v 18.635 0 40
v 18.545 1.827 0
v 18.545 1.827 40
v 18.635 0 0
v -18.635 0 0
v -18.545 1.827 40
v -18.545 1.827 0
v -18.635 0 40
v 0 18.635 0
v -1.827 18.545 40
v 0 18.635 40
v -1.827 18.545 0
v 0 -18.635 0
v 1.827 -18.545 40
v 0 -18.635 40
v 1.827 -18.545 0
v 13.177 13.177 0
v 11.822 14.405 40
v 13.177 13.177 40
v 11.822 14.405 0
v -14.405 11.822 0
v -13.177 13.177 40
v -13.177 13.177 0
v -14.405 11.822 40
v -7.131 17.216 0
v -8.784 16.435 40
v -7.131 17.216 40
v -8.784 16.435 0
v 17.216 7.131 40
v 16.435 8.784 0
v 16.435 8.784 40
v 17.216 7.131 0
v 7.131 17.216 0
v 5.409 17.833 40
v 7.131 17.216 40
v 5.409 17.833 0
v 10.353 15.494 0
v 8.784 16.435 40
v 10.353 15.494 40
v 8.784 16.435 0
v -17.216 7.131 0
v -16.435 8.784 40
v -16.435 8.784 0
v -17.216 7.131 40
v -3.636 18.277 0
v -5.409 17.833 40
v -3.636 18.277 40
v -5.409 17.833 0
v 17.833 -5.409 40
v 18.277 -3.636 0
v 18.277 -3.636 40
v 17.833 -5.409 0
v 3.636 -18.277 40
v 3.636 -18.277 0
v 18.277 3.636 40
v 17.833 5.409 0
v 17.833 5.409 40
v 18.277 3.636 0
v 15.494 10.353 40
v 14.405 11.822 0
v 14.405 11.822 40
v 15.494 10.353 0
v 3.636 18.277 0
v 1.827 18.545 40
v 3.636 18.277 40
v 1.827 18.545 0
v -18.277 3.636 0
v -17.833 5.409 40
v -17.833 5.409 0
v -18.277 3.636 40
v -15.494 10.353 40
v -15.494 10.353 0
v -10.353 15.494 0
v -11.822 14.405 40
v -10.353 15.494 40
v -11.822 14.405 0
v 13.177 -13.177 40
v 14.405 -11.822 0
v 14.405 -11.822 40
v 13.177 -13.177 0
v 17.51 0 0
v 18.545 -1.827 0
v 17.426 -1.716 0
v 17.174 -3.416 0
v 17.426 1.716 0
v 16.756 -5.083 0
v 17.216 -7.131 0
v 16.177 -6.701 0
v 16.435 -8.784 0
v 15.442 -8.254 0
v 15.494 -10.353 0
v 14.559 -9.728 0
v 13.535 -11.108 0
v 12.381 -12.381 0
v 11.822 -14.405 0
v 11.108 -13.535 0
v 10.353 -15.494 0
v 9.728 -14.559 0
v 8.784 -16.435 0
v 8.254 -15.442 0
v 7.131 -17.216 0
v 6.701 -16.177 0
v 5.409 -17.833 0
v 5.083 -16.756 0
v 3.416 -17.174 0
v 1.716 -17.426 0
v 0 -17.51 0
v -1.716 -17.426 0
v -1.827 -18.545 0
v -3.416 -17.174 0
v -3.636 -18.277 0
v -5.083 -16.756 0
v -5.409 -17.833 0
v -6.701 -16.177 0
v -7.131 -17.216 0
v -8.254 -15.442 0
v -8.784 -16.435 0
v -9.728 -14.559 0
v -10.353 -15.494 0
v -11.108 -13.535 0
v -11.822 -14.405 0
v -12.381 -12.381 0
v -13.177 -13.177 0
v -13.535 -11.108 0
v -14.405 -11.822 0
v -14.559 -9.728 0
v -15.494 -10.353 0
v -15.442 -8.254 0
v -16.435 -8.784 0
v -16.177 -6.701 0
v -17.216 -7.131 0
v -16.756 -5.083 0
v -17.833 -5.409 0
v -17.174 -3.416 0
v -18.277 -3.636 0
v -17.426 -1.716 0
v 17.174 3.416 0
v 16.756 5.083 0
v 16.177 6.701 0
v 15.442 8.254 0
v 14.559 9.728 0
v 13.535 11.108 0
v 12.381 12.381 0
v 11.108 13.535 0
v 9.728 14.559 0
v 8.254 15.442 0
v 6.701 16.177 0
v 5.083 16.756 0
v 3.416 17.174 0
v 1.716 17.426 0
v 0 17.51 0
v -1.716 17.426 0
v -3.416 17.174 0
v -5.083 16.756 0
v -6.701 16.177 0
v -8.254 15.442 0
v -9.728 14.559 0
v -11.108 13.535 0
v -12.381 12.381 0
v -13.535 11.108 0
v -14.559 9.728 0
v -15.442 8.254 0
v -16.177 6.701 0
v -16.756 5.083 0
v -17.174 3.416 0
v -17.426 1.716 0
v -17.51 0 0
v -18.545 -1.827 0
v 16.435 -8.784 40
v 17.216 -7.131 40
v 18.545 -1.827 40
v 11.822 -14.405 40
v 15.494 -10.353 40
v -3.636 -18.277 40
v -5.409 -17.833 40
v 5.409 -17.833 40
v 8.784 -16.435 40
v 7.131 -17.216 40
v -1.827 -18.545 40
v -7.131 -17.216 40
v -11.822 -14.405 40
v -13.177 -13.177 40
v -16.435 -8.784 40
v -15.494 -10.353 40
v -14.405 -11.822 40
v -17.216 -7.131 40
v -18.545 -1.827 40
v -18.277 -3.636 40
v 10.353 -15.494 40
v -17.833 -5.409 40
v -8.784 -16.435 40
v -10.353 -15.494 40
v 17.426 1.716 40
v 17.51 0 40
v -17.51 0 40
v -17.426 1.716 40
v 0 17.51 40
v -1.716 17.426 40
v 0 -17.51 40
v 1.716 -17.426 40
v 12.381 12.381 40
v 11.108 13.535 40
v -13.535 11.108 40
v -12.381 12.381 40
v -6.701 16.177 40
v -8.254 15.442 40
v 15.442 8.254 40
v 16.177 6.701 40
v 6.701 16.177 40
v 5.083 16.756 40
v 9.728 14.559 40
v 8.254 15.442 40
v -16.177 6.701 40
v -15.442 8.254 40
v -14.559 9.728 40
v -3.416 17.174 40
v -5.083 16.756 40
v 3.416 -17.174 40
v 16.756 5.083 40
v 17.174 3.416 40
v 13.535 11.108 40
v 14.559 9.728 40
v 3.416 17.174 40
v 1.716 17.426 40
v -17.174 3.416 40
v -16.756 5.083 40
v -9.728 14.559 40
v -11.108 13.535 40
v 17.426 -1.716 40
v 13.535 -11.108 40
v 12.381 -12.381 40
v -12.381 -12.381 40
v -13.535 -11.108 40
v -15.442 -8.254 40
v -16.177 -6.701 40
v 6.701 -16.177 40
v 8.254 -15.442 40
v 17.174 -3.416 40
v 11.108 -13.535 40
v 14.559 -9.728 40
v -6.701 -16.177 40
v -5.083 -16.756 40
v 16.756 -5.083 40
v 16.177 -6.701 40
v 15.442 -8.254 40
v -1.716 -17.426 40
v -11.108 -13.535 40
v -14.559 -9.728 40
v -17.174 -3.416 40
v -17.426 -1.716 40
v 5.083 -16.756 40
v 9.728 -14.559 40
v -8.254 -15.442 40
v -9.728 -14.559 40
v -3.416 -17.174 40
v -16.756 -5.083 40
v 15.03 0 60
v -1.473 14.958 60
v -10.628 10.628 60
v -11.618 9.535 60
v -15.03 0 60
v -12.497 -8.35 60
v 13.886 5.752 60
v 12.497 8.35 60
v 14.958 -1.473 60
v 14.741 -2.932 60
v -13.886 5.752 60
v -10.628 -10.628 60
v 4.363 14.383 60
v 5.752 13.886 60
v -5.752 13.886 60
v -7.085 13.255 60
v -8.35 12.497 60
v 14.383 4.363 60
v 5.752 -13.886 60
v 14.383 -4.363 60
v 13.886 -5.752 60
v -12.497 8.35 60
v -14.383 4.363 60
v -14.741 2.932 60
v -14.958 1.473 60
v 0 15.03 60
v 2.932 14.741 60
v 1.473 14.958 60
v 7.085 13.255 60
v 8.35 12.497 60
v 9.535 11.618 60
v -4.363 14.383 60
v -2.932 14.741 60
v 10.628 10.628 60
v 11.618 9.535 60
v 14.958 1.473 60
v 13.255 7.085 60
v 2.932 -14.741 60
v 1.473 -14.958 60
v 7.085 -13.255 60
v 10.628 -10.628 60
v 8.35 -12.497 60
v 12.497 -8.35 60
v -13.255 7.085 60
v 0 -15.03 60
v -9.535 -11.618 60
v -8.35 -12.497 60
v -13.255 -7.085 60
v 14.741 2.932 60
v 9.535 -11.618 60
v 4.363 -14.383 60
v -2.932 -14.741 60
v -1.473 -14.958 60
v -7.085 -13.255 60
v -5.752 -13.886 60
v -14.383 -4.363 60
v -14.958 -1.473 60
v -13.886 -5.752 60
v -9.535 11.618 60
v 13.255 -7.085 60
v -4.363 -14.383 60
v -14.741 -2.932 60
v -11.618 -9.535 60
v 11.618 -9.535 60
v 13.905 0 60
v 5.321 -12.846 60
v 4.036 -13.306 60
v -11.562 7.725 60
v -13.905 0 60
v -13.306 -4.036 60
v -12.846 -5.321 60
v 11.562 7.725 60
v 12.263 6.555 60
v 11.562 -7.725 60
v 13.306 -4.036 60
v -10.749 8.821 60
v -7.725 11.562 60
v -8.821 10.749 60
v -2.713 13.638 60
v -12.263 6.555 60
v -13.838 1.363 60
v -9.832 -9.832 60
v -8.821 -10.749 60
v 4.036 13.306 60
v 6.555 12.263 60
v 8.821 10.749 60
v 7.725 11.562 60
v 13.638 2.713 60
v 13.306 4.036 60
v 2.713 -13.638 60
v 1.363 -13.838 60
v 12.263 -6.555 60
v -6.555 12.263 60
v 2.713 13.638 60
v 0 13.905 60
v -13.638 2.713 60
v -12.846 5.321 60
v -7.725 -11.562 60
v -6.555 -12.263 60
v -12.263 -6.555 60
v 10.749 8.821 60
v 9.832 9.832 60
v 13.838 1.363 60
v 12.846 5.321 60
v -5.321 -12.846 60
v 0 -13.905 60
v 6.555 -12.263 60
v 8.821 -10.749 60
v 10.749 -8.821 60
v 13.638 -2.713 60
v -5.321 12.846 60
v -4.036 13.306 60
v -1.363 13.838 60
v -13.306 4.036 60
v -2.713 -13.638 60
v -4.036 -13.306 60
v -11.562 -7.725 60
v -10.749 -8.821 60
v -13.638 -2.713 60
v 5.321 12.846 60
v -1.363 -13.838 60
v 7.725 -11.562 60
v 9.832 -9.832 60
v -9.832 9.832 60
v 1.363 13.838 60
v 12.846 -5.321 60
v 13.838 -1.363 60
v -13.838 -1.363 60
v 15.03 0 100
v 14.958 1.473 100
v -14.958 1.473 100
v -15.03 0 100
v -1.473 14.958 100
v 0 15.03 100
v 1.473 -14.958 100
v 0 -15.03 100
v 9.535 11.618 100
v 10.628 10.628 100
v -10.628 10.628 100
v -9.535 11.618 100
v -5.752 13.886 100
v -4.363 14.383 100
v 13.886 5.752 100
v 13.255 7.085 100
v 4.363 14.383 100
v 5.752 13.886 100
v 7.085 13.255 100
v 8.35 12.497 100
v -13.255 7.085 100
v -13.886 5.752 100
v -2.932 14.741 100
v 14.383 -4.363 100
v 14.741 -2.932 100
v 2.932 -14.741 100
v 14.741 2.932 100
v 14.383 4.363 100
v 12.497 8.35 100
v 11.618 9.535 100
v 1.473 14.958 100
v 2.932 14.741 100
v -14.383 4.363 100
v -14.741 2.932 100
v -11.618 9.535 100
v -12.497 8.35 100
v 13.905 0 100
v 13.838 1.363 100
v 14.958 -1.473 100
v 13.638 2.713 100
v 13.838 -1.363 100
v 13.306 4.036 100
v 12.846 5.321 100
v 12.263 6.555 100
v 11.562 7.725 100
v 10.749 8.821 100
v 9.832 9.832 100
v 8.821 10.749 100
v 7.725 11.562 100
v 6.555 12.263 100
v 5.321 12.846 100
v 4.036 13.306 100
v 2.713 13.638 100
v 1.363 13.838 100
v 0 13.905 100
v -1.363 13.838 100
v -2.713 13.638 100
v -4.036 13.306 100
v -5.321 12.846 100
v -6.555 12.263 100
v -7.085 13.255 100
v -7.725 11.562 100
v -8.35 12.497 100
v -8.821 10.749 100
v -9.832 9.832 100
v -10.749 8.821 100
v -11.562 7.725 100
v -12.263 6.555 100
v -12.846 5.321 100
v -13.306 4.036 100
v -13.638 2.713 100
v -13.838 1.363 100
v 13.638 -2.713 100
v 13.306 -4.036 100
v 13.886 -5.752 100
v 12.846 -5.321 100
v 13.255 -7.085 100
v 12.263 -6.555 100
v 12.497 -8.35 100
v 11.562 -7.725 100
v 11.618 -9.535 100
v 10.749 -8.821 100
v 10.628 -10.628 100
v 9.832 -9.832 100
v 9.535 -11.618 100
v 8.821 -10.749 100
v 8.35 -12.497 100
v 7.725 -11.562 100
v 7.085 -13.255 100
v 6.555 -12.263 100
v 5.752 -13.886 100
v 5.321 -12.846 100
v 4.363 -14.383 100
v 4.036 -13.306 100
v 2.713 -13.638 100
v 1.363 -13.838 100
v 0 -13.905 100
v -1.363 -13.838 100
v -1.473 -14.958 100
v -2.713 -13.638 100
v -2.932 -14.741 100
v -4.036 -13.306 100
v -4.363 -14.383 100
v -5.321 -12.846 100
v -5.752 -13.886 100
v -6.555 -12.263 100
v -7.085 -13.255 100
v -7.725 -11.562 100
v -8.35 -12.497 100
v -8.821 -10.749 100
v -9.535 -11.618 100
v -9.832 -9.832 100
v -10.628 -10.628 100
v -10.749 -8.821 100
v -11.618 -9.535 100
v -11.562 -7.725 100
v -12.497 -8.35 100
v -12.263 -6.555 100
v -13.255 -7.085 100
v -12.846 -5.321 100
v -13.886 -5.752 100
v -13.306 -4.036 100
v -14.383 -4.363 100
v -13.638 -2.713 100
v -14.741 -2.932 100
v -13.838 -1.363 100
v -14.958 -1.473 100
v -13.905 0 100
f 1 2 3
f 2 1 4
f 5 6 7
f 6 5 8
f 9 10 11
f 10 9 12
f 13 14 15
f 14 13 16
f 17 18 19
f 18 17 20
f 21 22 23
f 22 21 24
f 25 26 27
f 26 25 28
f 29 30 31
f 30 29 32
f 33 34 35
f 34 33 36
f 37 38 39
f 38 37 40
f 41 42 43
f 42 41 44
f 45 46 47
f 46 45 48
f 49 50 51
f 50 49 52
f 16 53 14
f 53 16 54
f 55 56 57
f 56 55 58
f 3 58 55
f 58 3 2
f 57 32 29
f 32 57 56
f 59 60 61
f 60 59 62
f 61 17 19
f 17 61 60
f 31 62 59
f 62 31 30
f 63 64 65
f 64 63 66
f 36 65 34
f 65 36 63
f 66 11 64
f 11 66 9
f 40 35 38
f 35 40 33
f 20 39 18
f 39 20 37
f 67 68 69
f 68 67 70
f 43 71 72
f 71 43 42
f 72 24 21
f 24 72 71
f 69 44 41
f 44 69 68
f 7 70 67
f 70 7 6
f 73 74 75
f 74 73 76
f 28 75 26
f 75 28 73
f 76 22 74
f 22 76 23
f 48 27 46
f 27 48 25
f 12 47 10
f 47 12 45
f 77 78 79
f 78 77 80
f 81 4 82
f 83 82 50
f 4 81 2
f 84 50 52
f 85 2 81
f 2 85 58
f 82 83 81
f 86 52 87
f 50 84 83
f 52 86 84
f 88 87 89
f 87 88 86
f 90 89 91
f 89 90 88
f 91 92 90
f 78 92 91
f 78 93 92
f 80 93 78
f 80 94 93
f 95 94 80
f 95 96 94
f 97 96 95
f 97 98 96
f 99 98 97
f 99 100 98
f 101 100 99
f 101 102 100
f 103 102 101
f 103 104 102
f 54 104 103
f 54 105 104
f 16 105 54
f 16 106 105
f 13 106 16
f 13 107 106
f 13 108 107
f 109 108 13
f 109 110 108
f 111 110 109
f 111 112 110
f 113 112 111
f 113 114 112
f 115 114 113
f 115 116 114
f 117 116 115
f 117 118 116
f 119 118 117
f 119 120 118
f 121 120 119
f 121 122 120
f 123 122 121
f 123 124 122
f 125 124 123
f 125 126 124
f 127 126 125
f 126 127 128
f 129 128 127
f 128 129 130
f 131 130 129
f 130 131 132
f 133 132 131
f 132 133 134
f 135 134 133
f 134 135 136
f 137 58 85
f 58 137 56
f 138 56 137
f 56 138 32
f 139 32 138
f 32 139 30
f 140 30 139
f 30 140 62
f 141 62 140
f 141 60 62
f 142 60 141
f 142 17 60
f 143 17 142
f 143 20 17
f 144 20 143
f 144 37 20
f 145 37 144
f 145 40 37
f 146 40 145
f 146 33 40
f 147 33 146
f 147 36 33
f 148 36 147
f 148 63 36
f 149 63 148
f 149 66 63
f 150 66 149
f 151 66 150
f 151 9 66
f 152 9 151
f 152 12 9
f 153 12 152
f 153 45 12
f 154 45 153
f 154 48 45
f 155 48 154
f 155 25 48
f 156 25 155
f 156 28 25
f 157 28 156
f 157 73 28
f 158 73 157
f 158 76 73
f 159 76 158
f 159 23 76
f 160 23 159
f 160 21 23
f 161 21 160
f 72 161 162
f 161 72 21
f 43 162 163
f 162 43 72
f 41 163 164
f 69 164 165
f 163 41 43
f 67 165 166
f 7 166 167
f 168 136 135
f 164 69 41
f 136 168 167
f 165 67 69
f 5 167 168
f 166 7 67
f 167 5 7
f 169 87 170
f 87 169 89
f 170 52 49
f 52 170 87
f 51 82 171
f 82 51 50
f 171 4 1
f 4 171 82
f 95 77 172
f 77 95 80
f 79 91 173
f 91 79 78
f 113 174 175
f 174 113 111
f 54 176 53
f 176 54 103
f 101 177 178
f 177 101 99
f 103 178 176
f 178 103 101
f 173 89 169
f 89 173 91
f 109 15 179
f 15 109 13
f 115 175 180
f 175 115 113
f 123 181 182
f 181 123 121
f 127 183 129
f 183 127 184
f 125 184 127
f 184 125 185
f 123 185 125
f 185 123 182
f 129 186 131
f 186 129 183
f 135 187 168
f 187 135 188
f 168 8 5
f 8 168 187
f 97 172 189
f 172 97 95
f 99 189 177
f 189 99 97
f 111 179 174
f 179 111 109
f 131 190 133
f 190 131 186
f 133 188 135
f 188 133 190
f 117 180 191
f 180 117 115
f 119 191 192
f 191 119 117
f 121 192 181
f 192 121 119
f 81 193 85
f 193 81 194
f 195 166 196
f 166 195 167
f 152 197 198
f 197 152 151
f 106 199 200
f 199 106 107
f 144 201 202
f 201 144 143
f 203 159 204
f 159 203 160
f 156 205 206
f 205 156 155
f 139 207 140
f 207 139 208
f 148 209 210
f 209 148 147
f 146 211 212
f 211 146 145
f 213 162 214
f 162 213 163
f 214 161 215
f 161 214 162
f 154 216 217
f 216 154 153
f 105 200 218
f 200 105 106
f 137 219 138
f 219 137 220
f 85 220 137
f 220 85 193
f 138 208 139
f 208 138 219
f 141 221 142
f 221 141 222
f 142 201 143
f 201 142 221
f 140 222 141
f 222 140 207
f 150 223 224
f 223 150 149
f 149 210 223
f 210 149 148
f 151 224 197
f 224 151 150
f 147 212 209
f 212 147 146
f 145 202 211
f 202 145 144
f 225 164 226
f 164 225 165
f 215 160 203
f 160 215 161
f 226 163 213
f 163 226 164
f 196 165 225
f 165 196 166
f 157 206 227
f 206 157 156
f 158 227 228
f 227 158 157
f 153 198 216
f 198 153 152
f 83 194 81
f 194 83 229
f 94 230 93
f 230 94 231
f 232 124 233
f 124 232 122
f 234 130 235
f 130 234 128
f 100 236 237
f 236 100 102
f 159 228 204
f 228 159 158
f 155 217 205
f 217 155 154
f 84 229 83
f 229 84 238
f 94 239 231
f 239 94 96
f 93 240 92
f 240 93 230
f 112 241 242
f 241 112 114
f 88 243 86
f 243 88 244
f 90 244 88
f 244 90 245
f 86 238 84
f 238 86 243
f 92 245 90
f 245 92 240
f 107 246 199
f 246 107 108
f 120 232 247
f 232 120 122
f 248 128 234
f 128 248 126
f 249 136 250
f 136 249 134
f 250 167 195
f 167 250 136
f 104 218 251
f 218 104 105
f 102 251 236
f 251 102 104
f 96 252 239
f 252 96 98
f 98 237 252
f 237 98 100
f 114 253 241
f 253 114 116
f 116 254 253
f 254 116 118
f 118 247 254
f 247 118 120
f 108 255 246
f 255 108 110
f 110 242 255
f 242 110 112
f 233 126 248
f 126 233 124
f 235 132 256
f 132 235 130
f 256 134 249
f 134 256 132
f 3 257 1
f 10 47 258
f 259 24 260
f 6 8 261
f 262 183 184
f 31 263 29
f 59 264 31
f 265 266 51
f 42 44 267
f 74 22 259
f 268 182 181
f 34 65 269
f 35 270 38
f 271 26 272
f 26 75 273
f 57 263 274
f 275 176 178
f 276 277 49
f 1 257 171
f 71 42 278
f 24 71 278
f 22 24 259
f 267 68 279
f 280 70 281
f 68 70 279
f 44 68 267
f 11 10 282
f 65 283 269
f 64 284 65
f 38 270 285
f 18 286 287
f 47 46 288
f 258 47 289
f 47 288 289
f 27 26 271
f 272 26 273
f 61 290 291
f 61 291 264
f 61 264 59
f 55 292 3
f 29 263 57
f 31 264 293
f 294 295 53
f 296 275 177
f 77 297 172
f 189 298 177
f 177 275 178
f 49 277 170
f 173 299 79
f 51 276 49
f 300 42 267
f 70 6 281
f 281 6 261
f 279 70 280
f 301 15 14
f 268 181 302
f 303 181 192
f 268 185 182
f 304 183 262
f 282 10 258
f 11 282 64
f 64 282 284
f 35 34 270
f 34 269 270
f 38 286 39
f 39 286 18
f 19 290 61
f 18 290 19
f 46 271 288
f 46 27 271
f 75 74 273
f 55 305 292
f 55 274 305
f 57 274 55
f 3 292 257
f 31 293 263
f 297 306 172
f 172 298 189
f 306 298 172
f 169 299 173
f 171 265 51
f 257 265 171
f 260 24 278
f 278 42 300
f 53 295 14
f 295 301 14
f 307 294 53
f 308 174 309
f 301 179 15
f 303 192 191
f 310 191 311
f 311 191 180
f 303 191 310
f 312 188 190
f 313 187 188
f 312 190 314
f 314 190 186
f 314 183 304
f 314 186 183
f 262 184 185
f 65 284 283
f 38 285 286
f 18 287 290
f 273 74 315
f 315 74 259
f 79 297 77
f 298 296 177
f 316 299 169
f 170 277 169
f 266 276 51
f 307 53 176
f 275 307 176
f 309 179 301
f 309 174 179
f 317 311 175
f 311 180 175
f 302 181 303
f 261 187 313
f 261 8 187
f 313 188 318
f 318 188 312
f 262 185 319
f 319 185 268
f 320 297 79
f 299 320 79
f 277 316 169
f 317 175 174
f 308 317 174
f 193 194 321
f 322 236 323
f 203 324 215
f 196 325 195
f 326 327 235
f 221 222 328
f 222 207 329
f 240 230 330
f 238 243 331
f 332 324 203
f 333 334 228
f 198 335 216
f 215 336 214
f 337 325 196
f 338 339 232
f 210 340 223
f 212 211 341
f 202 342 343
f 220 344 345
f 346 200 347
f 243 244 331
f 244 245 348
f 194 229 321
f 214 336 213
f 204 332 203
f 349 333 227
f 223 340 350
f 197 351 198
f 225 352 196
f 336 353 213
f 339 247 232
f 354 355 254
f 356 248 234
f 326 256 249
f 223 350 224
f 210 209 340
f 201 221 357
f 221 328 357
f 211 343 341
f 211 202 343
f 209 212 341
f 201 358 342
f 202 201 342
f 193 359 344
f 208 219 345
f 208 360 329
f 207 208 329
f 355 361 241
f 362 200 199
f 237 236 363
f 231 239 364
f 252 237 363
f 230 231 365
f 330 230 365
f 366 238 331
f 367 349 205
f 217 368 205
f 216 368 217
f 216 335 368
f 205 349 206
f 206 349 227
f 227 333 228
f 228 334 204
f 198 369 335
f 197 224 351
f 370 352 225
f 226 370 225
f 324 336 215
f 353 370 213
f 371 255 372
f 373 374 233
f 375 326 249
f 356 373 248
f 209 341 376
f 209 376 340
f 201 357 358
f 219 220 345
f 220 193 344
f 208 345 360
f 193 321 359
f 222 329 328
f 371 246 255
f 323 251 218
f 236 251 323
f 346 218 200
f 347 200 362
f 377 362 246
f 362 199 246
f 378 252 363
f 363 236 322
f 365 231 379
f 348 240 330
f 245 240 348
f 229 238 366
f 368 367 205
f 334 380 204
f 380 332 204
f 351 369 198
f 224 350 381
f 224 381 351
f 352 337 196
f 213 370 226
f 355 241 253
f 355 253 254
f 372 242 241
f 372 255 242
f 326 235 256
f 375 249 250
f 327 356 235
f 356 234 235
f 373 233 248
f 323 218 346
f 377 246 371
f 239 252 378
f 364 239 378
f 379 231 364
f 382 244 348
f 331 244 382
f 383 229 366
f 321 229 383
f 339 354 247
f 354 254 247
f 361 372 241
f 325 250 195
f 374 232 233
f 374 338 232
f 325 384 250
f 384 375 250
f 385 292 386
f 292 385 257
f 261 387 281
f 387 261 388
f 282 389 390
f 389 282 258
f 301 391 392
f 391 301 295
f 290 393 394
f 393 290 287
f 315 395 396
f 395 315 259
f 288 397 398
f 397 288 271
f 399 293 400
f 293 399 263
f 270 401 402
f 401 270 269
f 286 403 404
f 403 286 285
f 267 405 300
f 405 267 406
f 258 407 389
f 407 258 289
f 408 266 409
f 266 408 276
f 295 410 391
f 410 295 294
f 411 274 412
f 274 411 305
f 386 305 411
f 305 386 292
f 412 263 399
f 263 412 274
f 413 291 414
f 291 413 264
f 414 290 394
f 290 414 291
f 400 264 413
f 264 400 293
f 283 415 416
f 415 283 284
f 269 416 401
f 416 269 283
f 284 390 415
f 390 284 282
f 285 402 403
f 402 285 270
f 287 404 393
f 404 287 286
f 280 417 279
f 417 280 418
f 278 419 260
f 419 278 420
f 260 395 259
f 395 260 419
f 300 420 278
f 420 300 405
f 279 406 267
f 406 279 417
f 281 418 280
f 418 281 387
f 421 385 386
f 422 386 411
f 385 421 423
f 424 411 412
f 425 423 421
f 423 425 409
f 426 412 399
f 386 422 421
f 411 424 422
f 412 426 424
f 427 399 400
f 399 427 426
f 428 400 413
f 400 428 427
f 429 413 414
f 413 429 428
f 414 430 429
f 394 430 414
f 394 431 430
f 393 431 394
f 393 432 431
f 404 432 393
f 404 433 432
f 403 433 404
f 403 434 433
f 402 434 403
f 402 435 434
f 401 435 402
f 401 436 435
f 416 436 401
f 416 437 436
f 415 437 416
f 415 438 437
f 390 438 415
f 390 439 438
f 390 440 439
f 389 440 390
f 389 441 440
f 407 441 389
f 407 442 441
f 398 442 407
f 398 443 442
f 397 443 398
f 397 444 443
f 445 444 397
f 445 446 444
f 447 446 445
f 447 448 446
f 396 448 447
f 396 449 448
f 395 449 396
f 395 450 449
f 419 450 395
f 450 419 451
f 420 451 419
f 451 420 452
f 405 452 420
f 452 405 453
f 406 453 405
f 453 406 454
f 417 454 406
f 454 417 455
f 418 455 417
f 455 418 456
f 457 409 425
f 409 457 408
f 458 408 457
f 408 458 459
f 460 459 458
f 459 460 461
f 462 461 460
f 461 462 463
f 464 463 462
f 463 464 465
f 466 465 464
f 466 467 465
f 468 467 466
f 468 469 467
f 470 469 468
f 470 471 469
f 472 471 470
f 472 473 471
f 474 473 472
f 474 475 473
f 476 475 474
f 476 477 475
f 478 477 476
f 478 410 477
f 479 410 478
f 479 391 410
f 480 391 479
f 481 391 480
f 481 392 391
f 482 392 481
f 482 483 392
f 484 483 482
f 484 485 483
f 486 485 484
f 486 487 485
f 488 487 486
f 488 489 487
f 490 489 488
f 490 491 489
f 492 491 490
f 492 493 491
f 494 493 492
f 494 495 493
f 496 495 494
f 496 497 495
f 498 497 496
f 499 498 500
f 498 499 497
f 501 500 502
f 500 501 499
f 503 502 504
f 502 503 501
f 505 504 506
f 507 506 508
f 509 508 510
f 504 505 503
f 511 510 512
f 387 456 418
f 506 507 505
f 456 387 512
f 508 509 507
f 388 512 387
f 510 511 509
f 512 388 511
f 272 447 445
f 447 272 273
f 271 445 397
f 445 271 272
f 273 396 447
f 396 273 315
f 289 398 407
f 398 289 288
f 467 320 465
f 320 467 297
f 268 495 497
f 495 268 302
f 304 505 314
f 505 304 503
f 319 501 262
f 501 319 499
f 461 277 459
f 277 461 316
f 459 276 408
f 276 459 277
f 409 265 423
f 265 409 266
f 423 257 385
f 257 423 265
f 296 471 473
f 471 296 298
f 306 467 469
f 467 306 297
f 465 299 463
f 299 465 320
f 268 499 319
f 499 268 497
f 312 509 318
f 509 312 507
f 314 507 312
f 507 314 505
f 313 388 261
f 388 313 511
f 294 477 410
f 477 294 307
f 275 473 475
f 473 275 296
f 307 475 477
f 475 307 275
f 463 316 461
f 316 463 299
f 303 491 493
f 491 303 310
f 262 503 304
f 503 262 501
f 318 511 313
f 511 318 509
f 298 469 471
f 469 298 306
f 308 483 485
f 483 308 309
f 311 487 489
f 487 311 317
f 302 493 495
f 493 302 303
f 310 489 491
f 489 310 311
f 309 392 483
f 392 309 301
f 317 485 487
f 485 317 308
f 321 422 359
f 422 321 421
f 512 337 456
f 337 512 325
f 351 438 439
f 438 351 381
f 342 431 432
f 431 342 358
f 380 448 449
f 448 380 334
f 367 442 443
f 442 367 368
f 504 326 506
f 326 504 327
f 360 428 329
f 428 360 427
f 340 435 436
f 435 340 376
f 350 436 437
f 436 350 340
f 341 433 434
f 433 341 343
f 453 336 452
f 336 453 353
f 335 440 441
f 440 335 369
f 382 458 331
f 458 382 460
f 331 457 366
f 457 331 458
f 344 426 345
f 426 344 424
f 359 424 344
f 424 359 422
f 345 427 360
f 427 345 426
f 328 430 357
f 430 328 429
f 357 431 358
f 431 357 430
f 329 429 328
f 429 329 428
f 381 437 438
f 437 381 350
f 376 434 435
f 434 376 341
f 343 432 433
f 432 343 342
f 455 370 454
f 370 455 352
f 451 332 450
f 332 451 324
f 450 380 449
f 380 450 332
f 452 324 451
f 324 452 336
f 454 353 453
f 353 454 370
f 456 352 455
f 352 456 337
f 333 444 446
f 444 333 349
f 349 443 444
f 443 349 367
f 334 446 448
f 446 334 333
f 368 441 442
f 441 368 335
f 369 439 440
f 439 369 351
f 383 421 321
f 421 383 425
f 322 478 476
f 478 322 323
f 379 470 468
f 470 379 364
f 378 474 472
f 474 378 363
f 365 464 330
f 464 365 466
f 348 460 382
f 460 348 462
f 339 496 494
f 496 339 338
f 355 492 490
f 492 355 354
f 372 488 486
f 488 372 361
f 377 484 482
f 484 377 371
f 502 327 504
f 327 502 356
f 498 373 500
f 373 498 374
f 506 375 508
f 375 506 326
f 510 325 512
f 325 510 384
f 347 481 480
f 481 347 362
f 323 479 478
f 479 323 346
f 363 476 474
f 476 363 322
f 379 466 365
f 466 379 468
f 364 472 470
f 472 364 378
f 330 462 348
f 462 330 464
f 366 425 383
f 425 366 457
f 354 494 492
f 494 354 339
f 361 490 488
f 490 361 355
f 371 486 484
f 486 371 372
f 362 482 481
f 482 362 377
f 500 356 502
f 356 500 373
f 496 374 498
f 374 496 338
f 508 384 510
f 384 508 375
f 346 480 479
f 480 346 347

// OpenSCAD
first_layer_height = 0.20;
layer_height = 0.15;
layer_width = 0.45;

$fn = 64;

wall_thickness = 2.5*layer_width;
bottom_thickness = first_layer_height + 2*layer_height;

// vacuum side
ovd = 34*1.03;
ojd = 27*1.03; // check
mount_length = 40;
adapter_length = 20;

// vaccuum mount
difference() {
    cylinder(mount_length, d=ovd+2*wall_thickness);
    cylinder(mount_length, d=ovd);
}

// adapter
translate([0,0,mount_length])
difference() {
    cylinder(adapter_length, d1=ovd+2*wall_thickness, d2=ojd+2*wall_thickness);
    cylinder(adapter_length, d1=ovd, d2=ojd);
}

// jigsaw mount
translate([0,0,mount_length + adapter_length])
difference() {
    cylinder(mount_length, d=ojd+2*wall_thickness);
    cylinder(mount_length, d=ojd);
}
